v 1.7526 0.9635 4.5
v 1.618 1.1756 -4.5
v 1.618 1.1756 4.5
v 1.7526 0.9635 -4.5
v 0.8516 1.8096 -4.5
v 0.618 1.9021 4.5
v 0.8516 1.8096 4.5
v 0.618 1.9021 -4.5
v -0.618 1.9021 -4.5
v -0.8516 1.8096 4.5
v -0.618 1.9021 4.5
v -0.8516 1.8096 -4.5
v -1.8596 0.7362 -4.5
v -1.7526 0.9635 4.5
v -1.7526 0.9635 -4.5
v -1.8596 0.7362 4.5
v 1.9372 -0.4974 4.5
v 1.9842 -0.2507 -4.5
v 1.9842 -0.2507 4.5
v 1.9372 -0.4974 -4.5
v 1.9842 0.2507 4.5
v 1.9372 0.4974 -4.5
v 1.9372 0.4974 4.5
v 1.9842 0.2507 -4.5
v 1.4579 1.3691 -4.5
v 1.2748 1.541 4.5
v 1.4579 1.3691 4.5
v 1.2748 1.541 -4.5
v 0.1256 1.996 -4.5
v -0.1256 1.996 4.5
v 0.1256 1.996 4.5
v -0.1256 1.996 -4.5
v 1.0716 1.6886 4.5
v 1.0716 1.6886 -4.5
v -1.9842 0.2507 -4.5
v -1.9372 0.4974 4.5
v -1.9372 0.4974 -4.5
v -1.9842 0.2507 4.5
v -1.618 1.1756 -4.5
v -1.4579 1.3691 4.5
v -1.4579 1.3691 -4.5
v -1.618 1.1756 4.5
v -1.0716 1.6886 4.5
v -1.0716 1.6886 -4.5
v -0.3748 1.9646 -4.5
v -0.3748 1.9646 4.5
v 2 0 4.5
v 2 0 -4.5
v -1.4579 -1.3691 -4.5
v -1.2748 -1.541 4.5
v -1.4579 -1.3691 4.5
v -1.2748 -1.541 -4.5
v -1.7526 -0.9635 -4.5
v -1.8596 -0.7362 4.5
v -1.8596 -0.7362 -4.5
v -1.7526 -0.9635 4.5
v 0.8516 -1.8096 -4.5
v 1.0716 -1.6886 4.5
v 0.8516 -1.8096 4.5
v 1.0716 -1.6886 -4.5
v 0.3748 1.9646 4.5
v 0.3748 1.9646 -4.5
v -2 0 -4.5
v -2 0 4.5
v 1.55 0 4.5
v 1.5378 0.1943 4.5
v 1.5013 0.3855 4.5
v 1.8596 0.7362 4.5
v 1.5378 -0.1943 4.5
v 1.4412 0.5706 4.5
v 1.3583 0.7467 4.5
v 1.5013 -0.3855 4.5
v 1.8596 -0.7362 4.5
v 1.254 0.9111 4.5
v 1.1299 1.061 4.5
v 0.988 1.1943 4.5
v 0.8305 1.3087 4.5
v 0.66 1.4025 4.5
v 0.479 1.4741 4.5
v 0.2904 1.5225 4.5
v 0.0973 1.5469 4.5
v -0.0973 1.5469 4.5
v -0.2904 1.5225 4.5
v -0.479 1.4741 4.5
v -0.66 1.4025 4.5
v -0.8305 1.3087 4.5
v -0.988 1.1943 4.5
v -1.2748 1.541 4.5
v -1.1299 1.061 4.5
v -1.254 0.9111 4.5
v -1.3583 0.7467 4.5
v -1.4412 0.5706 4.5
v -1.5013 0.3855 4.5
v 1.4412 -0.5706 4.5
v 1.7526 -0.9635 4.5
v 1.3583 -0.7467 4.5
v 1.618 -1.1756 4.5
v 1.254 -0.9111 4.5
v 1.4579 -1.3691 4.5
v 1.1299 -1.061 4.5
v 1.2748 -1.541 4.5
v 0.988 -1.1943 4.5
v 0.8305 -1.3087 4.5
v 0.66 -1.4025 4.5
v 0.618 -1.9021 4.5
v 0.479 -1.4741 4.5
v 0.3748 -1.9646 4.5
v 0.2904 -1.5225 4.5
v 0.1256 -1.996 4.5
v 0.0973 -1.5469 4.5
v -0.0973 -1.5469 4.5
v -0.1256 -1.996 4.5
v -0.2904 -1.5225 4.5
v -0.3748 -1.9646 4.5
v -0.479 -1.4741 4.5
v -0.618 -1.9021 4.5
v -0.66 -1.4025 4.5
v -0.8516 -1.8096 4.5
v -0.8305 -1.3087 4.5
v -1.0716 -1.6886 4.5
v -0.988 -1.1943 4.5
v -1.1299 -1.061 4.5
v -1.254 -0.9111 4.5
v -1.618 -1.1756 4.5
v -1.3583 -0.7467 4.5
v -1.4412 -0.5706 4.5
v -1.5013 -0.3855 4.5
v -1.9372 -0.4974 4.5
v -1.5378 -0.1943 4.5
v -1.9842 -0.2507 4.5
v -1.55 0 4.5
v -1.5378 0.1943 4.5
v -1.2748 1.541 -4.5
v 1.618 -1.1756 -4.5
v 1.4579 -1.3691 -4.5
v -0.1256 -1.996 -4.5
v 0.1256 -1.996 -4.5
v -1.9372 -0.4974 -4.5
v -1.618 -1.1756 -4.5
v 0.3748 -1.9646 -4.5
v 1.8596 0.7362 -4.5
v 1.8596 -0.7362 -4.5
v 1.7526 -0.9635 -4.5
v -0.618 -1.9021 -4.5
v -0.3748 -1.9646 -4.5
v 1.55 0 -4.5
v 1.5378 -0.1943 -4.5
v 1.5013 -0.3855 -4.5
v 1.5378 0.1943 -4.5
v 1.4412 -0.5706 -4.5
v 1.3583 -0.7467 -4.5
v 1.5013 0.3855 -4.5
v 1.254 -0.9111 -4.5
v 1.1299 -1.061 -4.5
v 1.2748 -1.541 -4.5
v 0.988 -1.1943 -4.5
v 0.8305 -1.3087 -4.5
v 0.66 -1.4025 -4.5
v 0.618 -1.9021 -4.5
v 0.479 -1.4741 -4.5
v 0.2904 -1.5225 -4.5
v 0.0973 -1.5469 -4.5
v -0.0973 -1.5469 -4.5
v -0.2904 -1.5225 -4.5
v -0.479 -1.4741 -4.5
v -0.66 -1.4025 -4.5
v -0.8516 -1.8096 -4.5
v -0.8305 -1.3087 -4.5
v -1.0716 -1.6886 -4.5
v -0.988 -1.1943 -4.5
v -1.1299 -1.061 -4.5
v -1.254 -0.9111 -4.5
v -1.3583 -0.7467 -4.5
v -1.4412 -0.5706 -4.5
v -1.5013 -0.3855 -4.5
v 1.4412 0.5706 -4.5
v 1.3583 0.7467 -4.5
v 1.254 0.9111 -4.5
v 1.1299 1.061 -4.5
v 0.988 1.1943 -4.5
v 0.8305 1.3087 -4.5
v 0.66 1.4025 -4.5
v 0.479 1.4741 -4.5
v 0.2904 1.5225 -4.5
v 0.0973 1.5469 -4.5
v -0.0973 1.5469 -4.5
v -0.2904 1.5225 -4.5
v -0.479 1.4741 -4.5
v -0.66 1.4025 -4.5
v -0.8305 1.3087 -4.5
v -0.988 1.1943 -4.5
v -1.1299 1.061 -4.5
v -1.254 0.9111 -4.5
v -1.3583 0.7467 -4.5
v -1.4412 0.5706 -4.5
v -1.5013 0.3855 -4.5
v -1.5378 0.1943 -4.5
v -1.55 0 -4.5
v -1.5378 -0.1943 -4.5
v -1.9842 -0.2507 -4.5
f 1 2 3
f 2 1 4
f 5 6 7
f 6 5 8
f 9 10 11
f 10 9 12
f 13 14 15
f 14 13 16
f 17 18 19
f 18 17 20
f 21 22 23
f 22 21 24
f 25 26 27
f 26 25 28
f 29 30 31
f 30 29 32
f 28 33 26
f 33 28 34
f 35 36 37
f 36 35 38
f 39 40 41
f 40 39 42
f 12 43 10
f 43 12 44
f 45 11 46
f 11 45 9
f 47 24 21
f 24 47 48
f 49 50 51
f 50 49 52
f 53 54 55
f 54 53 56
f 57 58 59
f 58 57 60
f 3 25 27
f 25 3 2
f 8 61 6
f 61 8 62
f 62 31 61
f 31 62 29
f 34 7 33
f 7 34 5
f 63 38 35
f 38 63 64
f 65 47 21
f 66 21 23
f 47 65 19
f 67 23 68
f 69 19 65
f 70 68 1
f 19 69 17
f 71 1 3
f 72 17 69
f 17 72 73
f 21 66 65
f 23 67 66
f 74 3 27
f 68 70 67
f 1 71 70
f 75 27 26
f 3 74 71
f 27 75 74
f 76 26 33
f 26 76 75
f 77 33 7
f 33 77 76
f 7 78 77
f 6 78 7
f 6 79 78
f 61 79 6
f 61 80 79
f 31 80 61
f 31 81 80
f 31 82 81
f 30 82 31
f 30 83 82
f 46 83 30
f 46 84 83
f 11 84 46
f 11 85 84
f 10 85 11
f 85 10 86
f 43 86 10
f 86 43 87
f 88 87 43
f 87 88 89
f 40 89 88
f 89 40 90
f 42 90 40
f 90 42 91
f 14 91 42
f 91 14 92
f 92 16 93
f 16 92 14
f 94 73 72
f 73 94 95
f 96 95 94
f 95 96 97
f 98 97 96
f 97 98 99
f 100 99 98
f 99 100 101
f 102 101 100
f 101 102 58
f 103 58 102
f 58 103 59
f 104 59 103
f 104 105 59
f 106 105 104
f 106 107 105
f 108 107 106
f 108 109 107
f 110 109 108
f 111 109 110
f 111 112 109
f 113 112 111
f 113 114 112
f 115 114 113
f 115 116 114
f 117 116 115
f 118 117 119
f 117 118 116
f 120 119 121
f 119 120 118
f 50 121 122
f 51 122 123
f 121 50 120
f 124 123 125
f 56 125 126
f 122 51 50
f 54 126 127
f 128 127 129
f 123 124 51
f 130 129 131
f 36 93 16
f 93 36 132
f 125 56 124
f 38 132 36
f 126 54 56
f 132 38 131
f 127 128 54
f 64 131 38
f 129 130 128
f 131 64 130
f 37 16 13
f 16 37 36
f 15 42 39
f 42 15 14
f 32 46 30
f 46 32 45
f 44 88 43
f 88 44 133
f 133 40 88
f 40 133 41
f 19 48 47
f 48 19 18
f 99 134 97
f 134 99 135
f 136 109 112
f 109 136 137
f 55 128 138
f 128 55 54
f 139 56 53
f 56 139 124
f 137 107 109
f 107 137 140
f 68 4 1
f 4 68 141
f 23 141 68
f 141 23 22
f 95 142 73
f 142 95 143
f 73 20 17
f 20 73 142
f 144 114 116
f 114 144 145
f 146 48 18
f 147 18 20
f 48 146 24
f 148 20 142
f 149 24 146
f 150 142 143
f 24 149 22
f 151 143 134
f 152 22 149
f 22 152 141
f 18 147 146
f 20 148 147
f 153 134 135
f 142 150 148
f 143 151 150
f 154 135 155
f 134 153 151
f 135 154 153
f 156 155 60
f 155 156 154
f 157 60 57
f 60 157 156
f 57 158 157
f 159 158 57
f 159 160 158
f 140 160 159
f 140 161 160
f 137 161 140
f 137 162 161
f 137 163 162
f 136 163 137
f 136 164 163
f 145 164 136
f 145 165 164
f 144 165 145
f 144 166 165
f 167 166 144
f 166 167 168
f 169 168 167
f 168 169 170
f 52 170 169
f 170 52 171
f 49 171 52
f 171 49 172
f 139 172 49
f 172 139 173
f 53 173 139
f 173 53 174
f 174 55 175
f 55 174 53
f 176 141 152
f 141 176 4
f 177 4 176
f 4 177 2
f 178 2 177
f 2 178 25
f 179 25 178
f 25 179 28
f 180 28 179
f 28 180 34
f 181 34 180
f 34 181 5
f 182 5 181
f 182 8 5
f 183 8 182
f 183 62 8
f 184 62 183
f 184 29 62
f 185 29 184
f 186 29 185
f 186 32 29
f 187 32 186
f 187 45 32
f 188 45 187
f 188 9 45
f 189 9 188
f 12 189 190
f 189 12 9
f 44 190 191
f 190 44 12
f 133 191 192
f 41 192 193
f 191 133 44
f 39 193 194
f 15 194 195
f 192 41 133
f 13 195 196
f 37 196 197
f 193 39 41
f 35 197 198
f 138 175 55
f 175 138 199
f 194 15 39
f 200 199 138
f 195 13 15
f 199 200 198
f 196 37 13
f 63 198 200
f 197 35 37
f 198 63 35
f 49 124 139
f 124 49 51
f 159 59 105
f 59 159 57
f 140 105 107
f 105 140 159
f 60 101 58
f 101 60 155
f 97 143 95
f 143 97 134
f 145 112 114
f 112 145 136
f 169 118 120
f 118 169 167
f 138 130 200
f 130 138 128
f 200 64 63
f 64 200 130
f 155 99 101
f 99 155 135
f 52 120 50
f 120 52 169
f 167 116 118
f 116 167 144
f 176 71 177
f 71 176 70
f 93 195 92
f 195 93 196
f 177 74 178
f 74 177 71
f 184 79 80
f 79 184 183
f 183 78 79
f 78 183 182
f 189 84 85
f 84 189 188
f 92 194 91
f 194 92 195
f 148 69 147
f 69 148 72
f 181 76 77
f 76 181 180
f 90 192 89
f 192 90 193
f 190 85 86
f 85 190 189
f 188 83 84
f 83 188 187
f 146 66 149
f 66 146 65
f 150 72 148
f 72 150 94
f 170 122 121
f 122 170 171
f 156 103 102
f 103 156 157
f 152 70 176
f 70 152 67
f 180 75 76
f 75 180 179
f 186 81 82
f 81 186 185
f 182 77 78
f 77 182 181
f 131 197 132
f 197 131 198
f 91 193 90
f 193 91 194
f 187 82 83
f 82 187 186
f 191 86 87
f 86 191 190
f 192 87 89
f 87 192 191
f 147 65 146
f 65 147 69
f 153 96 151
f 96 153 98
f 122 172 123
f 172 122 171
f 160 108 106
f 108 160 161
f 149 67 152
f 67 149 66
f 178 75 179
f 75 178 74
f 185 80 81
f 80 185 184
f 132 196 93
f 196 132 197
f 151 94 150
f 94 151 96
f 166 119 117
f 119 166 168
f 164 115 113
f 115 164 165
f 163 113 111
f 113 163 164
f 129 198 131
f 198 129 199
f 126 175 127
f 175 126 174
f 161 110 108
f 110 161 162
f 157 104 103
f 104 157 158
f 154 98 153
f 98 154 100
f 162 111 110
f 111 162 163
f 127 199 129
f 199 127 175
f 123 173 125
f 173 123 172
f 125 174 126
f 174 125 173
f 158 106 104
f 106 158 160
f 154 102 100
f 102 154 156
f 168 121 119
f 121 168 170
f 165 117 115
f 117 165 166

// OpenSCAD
$fn = 50;


difference() {
	union() {
		translate(v = [0, 0, -4.5000000000]) {
			cylinder(h = 9, r = 2.0000000000);
		}
	}
	union() {
		translate(v = [0, 0, -100.0000000000]) {
			cylinder(h = 200, r = 1.5500000000);
		}
	}
}
